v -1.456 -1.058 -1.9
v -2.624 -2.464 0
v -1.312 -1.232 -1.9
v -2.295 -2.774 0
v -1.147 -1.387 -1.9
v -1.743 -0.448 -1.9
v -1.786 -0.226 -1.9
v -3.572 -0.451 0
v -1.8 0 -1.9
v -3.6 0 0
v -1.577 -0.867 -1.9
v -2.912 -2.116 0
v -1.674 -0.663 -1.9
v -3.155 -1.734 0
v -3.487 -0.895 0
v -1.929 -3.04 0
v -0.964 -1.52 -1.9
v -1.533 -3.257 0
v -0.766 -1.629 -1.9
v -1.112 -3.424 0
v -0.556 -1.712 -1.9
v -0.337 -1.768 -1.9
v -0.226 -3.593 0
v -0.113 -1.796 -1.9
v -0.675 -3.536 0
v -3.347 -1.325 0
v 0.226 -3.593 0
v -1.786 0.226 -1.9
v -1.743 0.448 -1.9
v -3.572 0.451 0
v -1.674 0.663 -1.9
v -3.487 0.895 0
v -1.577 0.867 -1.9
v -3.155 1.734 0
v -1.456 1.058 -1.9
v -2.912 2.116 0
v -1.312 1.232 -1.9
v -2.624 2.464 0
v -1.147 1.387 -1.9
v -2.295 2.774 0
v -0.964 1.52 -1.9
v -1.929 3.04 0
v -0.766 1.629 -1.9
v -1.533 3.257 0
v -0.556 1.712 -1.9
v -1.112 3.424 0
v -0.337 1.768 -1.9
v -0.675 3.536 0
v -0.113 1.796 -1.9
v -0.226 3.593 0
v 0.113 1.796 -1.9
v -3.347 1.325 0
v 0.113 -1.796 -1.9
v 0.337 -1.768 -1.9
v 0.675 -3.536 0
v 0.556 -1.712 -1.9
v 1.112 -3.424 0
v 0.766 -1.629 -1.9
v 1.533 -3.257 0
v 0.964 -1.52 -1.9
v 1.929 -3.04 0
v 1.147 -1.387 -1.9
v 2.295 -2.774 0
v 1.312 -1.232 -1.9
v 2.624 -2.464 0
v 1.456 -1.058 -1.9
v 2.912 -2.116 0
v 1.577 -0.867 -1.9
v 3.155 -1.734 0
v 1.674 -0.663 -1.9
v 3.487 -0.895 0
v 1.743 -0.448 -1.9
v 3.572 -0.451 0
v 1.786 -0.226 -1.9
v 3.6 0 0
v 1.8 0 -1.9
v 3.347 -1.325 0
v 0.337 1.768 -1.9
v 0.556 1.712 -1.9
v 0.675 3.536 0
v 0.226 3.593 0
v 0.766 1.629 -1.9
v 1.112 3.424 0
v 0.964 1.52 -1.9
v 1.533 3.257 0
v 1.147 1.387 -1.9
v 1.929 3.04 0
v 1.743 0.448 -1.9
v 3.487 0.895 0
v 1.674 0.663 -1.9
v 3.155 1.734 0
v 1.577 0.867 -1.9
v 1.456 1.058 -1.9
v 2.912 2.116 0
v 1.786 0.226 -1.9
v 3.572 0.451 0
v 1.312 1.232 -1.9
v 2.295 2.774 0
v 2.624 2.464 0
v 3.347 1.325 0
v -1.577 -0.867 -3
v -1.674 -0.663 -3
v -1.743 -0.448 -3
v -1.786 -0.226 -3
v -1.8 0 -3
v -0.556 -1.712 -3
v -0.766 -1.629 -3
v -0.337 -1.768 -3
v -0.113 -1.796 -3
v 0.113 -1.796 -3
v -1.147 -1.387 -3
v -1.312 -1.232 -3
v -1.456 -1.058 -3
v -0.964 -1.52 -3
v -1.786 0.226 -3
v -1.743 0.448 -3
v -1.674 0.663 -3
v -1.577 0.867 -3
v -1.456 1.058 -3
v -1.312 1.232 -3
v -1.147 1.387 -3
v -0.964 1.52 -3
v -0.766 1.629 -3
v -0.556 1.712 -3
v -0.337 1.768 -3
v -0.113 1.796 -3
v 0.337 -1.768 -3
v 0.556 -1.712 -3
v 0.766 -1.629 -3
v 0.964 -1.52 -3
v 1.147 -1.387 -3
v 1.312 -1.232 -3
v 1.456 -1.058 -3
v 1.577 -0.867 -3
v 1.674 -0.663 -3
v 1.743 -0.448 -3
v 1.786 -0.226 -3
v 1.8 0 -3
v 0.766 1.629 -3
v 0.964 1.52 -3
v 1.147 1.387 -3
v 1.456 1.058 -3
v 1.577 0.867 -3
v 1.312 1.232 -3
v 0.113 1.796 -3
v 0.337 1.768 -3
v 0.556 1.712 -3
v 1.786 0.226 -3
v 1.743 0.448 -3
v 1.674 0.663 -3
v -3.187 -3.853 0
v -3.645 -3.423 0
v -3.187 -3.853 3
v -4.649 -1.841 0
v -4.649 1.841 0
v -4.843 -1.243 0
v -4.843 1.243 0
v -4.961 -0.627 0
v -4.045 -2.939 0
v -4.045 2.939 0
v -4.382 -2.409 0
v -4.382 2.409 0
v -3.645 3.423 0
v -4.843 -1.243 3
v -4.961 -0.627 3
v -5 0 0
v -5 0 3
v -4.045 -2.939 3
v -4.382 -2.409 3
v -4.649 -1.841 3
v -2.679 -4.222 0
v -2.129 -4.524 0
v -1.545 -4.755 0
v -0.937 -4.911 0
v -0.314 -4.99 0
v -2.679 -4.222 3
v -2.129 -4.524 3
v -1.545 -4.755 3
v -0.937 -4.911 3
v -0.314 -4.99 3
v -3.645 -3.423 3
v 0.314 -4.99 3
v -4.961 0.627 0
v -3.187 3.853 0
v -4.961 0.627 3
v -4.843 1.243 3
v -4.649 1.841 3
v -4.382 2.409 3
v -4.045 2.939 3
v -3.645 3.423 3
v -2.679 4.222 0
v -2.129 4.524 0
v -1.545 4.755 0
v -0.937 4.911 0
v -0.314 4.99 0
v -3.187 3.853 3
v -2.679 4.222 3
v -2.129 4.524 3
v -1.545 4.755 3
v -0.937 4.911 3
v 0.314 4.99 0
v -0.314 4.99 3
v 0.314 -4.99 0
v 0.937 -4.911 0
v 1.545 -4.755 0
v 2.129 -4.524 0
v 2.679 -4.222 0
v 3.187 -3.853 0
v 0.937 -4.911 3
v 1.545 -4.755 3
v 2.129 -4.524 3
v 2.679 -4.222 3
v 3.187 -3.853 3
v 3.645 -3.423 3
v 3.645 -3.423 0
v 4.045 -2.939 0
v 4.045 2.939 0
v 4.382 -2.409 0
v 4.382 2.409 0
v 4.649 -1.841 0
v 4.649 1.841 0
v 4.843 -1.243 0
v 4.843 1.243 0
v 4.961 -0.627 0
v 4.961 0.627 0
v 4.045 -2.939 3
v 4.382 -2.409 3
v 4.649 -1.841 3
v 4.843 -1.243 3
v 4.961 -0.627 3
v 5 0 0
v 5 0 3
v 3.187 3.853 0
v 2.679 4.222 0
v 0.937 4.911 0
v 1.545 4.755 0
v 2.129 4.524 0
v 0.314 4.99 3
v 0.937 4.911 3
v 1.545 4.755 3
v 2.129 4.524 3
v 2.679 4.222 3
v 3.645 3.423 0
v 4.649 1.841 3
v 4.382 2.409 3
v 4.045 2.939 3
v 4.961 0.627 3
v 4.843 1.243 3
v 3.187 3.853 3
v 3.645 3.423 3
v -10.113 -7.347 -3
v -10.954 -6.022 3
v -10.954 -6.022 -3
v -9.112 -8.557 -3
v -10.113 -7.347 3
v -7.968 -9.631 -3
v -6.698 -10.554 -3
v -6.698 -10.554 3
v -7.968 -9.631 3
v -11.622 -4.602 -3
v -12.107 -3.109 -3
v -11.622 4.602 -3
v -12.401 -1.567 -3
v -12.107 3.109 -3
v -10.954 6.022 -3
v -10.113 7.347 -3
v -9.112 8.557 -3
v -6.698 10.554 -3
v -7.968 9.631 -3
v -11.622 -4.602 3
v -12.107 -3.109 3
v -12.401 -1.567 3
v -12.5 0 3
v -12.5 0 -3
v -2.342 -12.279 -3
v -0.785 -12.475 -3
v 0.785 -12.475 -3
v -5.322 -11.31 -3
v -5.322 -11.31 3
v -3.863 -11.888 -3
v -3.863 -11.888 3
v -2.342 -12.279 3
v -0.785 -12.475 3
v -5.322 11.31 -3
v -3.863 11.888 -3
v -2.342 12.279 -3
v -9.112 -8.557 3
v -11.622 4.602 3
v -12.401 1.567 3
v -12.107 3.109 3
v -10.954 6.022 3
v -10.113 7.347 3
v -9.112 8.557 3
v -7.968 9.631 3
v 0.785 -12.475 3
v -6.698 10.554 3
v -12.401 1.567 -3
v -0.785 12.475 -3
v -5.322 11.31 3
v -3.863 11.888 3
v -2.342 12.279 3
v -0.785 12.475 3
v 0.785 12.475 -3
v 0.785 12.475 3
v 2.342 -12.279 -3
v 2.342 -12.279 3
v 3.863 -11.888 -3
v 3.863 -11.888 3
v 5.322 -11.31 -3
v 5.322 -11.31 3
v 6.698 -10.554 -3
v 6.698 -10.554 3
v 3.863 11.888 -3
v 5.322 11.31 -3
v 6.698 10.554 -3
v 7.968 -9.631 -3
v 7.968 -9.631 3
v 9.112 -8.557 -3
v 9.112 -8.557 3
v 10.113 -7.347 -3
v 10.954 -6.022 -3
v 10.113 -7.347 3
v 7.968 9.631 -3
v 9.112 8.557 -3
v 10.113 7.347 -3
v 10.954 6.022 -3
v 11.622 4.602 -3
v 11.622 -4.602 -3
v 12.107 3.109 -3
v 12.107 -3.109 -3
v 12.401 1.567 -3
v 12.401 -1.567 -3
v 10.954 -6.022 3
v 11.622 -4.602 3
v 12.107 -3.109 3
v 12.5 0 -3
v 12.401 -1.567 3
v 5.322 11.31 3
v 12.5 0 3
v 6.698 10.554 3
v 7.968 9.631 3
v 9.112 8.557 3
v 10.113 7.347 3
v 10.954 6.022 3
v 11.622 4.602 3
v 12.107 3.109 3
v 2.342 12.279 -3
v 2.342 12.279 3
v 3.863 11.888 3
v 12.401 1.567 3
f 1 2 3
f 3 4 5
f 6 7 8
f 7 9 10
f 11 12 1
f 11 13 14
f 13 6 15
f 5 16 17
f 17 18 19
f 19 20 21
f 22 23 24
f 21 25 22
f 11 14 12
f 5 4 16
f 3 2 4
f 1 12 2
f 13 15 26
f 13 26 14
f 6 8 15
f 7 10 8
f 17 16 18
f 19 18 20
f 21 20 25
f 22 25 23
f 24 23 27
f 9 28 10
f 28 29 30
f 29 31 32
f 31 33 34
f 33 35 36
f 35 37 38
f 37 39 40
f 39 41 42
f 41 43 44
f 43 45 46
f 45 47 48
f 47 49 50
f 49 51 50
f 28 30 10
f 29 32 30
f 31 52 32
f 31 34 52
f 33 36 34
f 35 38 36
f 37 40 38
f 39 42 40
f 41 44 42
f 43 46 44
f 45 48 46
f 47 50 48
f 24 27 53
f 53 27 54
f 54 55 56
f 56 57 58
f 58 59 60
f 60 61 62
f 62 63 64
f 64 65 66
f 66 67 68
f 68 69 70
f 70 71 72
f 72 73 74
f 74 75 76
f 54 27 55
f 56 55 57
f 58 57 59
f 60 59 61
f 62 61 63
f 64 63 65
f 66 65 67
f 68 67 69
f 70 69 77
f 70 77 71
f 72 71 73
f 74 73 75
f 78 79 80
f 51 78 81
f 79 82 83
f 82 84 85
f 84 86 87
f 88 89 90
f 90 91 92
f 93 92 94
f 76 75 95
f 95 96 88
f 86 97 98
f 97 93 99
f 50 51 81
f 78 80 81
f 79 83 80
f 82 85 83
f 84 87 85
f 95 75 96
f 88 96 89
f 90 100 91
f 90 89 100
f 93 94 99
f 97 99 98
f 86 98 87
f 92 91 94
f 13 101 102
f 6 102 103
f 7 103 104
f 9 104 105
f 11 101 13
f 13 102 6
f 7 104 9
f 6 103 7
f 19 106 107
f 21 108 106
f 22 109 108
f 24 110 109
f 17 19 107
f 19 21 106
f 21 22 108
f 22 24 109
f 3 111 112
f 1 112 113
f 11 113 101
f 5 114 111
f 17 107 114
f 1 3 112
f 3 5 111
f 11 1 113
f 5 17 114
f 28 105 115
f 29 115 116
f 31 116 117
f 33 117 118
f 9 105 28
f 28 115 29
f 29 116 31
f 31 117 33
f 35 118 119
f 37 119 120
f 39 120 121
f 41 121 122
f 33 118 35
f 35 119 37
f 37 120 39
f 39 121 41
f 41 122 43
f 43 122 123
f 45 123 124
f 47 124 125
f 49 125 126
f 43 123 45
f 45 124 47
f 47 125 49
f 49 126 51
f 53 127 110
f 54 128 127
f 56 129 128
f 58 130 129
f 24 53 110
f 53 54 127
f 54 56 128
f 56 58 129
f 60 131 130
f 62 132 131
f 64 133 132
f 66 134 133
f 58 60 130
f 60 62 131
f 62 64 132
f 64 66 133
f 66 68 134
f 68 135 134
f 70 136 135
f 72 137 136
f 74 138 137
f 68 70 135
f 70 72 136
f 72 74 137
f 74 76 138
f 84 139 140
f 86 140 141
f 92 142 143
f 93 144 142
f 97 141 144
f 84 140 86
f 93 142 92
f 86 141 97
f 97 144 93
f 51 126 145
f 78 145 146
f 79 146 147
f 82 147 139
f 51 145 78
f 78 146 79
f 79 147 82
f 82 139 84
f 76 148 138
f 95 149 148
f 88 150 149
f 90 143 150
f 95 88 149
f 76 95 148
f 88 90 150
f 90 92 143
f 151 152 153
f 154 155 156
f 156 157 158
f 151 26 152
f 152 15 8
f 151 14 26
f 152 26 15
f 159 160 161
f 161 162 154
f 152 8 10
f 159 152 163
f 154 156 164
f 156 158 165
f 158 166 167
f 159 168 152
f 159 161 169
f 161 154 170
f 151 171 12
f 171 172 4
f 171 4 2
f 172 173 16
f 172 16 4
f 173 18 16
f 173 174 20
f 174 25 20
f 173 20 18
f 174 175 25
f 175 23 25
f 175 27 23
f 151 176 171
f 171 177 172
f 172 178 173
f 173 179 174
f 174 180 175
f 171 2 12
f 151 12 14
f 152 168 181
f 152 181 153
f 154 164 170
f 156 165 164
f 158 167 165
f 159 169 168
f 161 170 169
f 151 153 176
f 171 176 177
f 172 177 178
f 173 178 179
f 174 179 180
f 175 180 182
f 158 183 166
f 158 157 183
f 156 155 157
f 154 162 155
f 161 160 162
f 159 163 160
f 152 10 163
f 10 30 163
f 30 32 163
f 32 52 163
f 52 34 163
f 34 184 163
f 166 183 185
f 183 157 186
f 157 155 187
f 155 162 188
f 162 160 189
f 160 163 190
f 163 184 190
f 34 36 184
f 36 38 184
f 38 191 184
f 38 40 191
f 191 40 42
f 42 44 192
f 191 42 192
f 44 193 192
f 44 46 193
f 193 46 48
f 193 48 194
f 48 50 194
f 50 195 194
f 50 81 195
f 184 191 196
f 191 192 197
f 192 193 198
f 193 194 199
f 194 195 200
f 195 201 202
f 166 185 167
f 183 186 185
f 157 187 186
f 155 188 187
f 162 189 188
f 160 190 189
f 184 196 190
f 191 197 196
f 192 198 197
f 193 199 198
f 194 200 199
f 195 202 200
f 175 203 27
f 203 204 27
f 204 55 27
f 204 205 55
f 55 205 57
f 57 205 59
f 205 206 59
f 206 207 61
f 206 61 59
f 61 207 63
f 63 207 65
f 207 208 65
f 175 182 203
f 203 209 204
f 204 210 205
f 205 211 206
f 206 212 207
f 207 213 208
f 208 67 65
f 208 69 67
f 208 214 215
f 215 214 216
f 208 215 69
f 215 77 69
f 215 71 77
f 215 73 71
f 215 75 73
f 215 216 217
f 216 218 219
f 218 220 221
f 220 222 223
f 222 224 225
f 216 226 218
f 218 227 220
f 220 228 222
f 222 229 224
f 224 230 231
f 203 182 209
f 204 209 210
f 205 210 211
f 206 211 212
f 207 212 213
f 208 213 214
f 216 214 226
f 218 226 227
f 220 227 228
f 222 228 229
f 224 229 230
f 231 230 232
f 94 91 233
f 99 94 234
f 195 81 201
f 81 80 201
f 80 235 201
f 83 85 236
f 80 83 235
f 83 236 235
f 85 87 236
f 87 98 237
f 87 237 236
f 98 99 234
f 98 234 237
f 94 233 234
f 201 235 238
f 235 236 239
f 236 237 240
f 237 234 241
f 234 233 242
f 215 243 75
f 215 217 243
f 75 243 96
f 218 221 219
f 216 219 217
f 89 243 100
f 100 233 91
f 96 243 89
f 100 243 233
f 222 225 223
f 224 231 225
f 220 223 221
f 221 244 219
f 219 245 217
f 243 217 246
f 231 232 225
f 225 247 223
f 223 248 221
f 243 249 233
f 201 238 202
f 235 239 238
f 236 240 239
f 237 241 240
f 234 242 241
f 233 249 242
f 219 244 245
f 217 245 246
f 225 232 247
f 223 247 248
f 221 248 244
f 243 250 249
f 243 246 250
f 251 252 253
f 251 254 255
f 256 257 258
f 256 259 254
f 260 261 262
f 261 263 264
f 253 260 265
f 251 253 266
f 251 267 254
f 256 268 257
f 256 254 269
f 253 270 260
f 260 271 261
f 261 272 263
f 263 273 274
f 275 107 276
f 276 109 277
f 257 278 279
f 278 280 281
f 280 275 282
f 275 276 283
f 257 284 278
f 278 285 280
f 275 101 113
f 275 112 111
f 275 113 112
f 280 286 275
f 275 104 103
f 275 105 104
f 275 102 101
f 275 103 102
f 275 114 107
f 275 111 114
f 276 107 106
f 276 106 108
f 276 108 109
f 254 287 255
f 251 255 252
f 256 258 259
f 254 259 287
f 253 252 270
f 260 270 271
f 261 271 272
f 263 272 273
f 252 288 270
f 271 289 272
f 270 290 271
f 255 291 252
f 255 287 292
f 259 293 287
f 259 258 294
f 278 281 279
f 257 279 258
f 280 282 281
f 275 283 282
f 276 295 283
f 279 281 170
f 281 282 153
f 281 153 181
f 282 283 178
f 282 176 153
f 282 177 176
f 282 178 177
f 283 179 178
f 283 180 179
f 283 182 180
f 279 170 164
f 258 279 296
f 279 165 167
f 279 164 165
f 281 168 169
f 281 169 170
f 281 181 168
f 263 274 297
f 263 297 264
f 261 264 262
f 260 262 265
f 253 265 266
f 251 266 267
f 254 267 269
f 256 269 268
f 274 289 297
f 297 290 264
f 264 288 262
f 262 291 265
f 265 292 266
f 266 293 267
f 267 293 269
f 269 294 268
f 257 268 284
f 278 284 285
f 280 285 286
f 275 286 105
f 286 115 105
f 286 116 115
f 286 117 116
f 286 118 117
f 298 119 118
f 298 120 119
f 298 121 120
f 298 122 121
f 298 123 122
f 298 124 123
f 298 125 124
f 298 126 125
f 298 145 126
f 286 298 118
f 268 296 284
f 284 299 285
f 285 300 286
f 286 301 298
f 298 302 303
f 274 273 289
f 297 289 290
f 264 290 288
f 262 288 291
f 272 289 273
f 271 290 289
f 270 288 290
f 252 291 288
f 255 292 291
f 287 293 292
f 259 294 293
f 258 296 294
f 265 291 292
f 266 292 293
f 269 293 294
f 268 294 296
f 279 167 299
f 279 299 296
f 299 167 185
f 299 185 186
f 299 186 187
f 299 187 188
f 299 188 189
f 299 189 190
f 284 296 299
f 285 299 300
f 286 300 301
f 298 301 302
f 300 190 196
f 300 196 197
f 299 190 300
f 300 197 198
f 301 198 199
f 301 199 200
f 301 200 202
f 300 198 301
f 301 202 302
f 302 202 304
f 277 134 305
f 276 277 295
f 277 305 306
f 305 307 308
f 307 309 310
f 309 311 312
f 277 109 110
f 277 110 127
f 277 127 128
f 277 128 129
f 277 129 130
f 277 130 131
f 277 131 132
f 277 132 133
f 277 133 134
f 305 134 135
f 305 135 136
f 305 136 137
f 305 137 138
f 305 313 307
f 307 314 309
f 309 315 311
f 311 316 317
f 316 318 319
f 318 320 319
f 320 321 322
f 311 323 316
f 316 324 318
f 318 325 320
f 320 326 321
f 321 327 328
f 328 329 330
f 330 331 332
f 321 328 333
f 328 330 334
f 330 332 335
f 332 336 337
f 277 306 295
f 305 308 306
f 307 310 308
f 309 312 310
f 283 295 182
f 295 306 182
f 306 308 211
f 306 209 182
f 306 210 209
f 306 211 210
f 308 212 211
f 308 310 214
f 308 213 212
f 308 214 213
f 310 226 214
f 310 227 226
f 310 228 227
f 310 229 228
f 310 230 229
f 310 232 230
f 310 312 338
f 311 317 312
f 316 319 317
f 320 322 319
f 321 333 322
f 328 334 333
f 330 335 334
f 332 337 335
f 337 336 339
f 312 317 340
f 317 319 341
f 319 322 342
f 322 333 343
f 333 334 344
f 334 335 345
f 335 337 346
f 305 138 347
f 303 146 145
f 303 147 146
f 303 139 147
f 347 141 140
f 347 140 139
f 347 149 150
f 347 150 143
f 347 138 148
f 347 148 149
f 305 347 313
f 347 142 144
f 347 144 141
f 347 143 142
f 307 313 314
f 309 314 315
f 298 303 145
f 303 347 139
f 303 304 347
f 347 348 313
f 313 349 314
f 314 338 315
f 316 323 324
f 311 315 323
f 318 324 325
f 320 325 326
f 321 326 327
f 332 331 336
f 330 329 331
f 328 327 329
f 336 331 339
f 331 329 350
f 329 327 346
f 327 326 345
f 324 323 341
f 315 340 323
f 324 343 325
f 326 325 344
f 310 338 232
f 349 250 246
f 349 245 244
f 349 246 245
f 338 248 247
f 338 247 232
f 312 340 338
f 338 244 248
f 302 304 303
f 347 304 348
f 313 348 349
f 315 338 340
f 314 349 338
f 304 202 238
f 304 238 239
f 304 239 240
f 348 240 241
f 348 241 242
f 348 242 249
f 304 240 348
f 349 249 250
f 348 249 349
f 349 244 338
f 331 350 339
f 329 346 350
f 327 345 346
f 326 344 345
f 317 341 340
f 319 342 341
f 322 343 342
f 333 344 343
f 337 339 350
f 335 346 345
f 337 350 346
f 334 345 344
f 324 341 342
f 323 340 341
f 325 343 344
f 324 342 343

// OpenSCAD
$fn = 50;


difference() {
	union() {
		translate(v = [0, 0, -3.0000000000]) {
			cylinder(h = 6, r = 12.5000000000);
		}
	}
	union() {
		translate(v = [0, 0, 0]) {
			rotate(a = [0, 0, 0]) {
				difference() {
					union() {
						translate(v = [0, 0, -6.0000000000]) {
							cylinder(h = 6, r = 1.5000000000);
						}
						translate(v = [0, 0, -1.9000000000]) {
							cylinder(h = 1.9000000000, r1 = 1.8000000000, r2 = 3.6000000000);
						}
						translate(v = [0, 0, -6.0000000000]) {
							cylinder(h = 6, r = 1.8000000000);
						}
						translate(v = [0, 0, -6.0000000000]) {
							cylinder(h = 6, r = 1.5000000000);
						}
					}
					union();
				}
			}
		}
		#cylinder(h = 3, r = 5.0000000000);
	}
}
